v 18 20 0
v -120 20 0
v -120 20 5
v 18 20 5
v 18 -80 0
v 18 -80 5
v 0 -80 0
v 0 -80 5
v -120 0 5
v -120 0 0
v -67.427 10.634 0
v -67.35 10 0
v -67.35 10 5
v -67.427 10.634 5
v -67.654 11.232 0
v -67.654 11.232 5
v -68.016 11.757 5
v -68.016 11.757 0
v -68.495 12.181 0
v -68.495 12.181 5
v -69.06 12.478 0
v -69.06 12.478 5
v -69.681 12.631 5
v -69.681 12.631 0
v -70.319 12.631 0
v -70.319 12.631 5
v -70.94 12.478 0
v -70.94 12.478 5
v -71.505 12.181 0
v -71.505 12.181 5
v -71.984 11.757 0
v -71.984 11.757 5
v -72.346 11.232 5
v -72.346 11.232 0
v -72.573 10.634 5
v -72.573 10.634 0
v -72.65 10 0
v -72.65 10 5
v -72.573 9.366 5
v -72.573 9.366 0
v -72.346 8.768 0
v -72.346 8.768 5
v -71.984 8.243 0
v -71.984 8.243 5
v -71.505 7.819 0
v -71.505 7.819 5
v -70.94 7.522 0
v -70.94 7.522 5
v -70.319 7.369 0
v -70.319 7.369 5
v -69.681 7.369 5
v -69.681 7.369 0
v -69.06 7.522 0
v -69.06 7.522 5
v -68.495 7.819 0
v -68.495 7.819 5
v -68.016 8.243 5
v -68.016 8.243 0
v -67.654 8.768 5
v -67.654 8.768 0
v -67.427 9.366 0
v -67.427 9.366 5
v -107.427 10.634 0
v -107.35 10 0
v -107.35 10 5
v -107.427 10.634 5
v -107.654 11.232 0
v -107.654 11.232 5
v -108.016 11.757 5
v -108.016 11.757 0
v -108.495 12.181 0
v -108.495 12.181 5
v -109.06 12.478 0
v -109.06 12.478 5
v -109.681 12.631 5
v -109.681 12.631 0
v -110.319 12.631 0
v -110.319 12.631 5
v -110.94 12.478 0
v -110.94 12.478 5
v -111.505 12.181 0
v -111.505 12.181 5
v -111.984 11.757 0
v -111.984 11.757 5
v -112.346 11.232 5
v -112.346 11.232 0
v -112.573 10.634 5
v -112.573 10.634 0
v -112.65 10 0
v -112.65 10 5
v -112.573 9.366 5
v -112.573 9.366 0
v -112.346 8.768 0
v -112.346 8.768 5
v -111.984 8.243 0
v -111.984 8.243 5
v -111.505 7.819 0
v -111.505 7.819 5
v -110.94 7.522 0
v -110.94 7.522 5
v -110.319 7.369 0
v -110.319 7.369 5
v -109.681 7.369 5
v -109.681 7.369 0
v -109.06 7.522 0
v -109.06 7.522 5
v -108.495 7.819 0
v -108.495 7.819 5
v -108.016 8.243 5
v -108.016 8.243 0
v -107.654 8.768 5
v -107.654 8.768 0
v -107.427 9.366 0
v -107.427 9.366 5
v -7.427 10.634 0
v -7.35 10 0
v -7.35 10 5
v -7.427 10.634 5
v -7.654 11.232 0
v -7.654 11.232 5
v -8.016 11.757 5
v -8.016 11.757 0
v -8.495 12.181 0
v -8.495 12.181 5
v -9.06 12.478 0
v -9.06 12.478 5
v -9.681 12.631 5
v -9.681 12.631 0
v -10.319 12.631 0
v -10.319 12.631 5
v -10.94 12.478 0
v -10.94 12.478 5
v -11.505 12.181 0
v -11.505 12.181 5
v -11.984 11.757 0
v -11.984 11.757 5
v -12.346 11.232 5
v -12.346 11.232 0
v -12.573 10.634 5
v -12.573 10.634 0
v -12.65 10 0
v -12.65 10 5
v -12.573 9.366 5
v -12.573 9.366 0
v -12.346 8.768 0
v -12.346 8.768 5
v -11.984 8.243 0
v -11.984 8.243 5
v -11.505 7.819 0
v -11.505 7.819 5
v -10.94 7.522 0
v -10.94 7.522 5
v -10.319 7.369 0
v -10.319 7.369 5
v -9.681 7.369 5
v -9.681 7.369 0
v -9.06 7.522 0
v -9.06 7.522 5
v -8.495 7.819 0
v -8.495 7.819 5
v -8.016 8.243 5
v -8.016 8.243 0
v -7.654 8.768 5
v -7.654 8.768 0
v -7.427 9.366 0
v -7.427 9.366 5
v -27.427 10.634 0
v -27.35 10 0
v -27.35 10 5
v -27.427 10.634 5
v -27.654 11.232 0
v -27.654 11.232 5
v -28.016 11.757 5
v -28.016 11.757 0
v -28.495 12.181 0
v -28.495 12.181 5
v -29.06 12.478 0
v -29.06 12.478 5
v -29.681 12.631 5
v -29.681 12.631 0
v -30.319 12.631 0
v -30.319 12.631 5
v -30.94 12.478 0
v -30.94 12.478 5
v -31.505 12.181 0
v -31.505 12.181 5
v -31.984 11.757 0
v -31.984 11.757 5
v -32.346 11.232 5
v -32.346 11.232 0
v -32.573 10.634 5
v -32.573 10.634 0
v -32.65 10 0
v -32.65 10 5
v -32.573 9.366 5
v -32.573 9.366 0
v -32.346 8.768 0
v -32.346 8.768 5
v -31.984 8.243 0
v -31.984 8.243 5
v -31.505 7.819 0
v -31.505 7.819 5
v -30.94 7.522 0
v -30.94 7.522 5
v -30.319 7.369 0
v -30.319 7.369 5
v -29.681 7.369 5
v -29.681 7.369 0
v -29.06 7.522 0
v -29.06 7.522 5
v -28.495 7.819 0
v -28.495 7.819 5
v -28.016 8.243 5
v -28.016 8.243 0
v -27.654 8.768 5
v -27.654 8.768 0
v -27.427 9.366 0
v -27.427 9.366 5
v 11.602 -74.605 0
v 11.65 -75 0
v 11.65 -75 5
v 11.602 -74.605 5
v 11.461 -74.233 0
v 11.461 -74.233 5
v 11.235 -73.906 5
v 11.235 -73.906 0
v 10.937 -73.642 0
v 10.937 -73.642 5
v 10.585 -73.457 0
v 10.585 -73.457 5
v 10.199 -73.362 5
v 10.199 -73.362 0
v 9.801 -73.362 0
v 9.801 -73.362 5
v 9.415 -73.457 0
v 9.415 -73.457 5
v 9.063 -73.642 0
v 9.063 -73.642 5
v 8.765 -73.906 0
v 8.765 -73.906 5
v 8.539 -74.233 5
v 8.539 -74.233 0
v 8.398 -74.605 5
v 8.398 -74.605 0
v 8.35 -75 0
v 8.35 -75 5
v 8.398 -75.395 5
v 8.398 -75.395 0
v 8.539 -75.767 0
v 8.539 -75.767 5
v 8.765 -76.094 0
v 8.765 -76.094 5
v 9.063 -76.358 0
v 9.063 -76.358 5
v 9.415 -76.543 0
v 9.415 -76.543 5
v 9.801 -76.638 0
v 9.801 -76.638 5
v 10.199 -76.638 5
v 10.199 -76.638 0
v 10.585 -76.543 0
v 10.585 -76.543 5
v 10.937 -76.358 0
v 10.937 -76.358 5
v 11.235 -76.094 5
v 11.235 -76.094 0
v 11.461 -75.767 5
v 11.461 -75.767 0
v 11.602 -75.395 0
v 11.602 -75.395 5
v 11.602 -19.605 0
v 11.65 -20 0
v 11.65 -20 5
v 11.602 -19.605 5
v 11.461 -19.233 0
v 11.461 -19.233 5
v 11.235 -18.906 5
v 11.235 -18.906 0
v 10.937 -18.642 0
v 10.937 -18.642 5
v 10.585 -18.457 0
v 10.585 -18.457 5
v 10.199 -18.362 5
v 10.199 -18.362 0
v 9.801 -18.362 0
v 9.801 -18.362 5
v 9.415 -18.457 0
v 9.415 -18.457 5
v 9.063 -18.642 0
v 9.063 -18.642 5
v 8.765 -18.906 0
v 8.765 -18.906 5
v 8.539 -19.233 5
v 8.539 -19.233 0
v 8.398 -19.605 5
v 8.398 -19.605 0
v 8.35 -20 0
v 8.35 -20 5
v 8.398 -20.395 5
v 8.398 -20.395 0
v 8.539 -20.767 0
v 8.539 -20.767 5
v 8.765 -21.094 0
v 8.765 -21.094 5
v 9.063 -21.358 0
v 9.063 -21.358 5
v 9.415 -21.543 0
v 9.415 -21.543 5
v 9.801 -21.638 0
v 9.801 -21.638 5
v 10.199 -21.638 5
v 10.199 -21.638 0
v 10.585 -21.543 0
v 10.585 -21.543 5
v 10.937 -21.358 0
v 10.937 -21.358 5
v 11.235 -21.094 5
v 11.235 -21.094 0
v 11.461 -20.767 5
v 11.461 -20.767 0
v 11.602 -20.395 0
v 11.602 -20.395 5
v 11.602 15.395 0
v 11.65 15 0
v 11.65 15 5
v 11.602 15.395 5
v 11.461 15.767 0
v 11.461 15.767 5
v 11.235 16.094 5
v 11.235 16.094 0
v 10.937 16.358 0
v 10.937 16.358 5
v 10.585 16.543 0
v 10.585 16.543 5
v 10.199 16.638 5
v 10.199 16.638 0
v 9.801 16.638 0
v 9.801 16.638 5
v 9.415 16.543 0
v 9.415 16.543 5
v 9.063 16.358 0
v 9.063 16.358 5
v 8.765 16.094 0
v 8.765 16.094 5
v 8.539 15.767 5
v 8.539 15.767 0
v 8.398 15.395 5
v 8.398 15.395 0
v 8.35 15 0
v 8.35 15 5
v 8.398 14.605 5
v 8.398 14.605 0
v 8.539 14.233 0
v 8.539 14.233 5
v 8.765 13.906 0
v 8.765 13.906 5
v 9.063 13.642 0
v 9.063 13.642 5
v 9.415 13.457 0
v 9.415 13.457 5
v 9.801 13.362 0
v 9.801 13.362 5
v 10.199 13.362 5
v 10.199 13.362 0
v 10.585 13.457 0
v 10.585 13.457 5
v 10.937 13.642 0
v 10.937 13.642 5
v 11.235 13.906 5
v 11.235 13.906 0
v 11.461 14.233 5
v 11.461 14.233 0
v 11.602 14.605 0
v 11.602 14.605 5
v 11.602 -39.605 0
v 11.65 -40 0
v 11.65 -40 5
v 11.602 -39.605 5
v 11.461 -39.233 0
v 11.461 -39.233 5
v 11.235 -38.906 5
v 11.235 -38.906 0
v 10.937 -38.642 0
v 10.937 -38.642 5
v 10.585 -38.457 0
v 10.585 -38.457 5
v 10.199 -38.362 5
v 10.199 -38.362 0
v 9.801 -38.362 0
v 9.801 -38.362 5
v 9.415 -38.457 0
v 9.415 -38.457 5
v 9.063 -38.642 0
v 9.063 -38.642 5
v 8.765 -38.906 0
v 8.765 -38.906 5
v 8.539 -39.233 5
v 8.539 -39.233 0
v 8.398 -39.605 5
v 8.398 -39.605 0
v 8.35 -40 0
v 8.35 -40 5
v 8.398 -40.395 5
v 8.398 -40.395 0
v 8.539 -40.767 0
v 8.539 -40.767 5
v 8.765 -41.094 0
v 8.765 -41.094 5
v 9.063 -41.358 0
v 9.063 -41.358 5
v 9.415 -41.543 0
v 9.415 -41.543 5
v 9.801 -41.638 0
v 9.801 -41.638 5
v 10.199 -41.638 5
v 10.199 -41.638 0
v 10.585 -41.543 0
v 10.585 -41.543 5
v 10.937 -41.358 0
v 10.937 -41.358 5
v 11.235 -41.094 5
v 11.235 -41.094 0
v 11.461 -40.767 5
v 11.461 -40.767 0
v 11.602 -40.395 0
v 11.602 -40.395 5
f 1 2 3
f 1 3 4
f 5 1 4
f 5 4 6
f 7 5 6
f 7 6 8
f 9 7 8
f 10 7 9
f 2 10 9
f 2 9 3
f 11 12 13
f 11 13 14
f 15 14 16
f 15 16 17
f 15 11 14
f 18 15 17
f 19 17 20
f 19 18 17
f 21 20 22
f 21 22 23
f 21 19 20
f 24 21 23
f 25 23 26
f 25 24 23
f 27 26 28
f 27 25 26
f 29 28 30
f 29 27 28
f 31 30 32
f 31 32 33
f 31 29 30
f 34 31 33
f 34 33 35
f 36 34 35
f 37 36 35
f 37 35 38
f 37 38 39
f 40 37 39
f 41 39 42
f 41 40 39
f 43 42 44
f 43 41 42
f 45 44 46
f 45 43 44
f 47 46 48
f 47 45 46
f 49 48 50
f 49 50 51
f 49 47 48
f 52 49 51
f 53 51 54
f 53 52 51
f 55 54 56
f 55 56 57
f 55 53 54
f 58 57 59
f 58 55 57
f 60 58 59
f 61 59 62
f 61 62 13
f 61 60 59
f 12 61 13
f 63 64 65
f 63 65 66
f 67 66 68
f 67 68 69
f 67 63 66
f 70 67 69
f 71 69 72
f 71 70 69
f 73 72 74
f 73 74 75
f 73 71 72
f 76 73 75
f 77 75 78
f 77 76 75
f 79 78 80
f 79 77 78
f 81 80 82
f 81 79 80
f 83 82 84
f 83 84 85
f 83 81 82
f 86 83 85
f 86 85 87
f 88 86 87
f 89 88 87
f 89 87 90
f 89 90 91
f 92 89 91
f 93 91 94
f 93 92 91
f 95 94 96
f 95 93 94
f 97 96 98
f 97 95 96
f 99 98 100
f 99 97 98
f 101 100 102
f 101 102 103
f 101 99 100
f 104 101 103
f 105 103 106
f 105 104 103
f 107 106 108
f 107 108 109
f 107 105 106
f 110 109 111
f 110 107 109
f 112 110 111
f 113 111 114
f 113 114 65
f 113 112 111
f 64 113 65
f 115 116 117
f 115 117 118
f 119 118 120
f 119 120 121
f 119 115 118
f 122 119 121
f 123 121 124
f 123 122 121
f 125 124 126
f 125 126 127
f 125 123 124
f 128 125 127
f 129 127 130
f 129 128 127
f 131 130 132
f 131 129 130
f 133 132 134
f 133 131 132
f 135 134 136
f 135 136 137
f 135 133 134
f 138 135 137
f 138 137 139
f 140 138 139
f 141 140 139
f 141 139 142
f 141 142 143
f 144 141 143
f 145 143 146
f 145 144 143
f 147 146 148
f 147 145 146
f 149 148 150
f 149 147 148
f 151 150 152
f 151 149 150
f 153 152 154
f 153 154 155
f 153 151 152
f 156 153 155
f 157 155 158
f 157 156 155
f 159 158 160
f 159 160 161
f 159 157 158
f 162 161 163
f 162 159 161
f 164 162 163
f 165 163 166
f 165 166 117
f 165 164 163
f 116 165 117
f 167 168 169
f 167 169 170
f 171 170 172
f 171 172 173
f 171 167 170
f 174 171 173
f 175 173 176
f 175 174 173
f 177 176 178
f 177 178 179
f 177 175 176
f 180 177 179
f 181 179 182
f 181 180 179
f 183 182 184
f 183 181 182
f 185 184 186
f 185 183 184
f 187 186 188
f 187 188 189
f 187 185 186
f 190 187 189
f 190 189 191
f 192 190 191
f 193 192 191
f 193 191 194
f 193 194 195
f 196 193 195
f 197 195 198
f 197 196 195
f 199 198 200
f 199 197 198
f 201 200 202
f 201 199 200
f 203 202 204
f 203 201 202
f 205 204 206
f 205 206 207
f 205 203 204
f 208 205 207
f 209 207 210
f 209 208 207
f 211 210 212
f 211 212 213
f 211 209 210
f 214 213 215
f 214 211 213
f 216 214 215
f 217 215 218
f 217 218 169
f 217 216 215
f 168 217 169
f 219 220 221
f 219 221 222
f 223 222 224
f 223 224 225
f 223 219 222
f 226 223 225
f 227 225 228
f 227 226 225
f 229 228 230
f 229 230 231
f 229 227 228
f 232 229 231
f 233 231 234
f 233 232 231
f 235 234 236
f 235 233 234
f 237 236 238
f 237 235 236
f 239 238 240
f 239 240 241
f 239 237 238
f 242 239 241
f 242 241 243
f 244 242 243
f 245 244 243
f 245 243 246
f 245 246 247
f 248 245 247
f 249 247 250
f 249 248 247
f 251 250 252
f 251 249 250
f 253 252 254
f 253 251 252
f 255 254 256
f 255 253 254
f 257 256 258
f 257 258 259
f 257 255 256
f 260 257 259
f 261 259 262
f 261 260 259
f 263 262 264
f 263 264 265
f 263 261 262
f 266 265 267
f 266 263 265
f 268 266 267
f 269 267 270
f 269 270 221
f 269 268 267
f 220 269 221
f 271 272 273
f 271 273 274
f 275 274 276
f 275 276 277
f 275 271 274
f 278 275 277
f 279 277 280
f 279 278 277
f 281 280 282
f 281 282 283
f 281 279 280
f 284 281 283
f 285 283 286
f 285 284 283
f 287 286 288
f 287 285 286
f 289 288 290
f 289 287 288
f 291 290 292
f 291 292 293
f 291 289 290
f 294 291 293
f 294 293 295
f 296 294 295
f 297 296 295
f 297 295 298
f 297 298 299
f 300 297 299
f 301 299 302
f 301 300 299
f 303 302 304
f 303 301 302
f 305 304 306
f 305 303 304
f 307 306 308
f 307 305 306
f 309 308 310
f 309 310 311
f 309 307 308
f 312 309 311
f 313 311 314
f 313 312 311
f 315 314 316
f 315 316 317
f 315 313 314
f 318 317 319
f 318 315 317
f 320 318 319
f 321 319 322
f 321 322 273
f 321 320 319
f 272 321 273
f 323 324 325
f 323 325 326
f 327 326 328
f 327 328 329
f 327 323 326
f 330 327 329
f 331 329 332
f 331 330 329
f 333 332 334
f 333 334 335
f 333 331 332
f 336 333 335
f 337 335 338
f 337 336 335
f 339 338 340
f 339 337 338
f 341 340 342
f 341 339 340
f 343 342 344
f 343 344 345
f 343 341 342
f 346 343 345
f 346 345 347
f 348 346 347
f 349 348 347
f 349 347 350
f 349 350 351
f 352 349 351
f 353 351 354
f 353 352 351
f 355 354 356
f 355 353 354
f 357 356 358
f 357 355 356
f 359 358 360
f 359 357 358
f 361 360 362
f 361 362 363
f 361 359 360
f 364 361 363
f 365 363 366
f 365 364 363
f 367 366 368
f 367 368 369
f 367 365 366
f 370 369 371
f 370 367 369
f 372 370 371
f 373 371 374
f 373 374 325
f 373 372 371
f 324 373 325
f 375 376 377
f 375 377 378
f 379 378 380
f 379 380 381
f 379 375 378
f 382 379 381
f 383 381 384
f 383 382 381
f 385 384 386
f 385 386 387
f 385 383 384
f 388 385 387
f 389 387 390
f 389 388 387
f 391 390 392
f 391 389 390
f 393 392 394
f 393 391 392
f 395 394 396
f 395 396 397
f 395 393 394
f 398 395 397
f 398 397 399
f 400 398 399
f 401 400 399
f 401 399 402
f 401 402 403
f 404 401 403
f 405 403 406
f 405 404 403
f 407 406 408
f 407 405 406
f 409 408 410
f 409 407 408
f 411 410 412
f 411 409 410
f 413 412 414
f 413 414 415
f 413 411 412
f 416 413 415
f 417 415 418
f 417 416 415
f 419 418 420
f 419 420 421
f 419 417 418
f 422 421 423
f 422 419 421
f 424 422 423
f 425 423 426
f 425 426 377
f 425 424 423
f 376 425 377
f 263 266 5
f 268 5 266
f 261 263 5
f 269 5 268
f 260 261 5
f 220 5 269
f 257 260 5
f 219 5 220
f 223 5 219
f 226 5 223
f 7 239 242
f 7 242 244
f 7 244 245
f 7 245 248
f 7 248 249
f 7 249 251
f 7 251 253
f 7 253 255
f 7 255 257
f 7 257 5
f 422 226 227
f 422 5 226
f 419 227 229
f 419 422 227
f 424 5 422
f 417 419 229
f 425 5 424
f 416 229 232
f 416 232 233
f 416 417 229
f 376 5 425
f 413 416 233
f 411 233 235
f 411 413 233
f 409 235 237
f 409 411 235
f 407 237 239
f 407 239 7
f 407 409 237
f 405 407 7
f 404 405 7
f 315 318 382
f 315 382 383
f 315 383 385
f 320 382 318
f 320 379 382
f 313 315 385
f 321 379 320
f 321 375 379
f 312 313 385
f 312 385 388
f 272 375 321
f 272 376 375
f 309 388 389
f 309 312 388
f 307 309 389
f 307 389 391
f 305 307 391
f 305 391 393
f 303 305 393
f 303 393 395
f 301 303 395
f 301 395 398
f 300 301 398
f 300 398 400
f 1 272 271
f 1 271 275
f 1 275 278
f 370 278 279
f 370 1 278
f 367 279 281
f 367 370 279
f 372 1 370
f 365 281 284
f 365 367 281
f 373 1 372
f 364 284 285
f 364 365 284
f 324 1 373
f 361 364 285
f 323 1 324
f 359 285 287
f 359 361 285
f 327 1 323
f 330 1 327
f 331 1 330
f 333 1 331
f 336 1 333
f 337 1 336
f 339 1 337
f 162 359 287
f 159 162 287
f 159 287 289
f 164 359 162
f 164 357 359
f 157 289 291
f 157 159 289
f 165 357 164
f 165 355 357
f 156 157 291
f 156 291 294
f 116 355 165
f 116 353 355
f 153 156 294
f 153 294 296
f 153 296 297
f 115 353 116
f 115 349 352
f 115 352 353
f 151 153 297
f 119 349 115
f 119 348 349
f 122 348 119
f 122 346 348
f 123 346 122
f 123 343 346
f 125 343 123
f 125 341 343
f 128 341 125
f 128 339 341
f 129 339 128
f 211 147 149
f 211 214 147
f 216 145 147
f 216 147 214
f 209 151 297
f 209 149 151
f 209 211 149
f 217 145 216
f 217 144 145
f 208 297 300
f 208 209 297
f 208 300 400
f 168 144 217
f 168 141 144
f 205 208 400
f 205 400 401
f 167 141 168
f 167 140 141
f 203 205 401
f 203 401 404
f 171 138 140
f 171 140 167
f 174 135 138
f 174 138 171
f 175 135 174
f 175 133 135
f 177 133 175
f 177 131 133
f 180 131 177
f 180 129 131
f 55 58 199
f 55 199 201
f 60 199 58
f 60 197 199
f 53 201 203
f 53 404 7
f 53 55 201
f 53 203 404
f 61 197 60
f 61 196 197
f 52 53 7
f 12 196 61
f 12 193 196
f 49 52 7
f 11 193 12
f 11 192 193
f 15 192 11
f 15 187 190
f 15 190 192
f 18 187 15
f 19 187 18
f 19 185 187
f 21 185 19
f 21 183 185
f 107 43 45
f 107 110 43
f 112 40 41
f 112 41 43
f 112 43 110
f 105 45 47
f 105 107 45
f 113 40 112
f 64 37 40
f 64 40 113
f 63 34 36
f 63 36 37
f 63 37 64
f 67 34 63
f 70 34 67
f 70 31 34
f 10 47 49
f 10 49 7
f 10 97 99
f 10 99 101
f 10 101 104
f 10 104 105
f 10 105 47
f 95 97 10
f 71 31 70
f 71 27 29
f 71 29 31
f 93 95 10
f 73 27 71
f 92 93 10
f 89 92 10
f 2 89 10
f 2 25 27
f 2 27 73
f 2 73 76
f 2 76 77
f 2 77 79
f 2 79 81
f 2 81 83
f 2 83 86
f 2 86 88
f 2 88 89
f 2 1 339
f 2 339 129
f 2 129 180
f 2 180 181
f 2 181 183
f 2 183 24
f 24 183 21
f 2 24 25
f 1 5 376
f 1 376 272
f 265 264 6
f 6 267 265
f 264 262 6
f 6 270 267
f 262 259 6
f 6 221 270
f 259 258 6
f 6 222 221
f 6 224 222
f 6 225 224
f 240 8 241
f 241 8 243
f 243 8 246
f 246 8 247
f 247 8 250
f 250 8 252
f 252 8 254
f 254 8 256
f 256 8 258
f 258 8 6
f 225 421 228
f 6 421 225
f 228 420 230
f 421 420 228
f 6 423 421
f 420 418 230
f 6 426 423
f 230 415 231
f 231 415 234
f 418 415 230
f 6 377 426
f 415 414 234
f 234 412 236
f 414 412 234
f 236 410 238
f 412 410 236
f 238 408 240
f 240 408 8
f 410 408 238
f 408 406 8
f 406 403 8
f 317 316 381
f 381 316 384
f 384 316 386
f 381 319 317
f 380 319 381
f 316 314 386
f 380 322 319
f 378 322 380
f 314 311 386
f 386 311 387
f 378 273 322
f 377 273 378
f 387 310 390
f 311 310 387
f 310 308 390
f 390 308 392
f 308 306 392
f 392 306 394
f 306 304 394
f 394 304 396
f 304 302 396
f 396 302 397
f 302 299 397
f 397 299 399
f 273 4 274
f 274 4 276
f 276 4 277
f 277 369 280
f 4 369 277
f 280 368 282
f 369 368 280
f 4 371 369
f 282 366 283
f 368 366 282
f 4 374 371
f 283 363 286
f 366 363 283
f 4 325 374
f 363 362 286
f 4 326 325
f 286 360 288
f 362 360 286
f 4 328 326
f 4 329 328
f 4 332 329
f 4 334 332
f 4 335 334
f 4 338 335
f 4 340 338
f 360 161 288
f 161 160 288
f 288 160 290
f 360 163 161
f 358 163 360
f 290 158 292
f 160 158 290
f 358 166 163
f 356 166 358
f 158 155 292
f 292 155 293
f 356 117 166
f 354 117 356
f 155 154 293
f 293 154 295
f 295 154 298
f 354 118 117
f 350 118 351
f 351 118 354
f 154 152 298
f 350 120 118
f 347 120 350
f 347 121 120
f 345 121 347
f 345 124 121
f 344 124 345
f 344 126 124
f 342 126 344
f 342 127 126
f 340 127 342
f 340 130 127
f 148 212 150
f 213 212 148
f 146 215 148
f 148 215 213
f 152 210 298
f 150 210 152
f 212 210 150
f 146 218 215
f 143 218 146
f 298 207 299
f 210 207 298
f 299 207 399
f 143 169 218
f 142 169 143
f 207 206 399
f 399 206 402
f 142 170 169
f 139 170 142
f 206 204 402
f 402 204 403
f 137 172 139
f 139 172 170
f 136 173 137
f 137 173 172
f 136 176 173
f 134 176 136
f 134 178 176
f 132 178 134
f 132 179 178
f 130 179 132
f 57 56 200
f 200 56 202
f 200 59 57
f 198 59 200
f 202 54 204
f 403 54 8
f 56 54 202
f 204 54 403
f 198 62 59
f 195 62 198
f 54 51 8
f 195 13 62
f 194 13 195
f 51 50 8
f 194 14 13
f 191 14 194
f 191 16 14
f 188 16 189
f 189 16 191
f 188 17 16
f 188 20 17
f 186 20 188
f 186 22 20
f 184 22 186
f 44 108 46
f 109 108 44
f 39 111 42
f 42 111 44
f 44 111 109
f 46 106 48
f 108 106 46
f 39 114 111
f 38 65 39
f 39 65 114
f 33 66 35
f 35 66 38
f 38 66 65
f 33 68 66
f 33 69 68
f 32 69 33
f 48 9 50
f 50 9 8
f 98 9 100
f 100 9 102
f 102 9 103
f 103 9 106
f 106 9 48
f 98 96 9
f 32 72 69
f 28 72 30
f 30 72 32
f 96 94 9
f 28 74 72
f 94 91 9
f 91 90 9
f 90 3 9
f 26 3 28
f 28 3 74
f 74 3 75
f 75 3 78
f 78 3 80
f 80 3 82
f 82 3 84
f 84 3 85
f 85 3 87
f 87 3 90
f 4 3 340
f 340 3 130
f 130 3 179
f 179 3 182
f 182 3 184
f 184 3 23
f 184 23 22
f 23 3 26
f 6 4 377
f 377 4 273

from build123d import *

# Parameters (mm, degrees)
SKETCH_R   = 2.65
SKETCH_R_2 = 1.65
PAD_DEPTH  = 5


with BuildPart() as part:
    # Sketch → Pad (new body)
    with BuildSketch(Plane.XY):
        Polygon((-120, 20), (18, 20), (18, -80), (0, -80), (-120, 0), align=None)
        with Locations((-10, 10)):
            Circle(SKETCH_R, mode=Mode.SUBTRACT)
        with Locations((-110, 10)):
            Circle(SKETCH_R, mode=Mode.SUBTRACT)
        with Locations((-70, 10)):
            Circle(SKETCH_R, mode=Mode.SUBTRACT)
        with Locations((-30, 10)):
            Circle(SKETCH_R, mode=Mode.SUBTRACT)
        with Locations((10, 15)):
            Circle(SKETCH_R_2, mode=Mode.SUBTRACT)
        with Locations((10, -20)):
            Circle(SKETCH_R_2, mode=Mode.SUBTRACT)
        with Locations((10, -40)):
            Circle(SKETCH_R_2, mode=Mode.SUBTRACT)
        with Locations((10, -75)):
            Circle(SKETCH_R_2, mode=Mode.SUBTRACT)
    extrude(amount=PAD_DEPTH)


solid = part.part
